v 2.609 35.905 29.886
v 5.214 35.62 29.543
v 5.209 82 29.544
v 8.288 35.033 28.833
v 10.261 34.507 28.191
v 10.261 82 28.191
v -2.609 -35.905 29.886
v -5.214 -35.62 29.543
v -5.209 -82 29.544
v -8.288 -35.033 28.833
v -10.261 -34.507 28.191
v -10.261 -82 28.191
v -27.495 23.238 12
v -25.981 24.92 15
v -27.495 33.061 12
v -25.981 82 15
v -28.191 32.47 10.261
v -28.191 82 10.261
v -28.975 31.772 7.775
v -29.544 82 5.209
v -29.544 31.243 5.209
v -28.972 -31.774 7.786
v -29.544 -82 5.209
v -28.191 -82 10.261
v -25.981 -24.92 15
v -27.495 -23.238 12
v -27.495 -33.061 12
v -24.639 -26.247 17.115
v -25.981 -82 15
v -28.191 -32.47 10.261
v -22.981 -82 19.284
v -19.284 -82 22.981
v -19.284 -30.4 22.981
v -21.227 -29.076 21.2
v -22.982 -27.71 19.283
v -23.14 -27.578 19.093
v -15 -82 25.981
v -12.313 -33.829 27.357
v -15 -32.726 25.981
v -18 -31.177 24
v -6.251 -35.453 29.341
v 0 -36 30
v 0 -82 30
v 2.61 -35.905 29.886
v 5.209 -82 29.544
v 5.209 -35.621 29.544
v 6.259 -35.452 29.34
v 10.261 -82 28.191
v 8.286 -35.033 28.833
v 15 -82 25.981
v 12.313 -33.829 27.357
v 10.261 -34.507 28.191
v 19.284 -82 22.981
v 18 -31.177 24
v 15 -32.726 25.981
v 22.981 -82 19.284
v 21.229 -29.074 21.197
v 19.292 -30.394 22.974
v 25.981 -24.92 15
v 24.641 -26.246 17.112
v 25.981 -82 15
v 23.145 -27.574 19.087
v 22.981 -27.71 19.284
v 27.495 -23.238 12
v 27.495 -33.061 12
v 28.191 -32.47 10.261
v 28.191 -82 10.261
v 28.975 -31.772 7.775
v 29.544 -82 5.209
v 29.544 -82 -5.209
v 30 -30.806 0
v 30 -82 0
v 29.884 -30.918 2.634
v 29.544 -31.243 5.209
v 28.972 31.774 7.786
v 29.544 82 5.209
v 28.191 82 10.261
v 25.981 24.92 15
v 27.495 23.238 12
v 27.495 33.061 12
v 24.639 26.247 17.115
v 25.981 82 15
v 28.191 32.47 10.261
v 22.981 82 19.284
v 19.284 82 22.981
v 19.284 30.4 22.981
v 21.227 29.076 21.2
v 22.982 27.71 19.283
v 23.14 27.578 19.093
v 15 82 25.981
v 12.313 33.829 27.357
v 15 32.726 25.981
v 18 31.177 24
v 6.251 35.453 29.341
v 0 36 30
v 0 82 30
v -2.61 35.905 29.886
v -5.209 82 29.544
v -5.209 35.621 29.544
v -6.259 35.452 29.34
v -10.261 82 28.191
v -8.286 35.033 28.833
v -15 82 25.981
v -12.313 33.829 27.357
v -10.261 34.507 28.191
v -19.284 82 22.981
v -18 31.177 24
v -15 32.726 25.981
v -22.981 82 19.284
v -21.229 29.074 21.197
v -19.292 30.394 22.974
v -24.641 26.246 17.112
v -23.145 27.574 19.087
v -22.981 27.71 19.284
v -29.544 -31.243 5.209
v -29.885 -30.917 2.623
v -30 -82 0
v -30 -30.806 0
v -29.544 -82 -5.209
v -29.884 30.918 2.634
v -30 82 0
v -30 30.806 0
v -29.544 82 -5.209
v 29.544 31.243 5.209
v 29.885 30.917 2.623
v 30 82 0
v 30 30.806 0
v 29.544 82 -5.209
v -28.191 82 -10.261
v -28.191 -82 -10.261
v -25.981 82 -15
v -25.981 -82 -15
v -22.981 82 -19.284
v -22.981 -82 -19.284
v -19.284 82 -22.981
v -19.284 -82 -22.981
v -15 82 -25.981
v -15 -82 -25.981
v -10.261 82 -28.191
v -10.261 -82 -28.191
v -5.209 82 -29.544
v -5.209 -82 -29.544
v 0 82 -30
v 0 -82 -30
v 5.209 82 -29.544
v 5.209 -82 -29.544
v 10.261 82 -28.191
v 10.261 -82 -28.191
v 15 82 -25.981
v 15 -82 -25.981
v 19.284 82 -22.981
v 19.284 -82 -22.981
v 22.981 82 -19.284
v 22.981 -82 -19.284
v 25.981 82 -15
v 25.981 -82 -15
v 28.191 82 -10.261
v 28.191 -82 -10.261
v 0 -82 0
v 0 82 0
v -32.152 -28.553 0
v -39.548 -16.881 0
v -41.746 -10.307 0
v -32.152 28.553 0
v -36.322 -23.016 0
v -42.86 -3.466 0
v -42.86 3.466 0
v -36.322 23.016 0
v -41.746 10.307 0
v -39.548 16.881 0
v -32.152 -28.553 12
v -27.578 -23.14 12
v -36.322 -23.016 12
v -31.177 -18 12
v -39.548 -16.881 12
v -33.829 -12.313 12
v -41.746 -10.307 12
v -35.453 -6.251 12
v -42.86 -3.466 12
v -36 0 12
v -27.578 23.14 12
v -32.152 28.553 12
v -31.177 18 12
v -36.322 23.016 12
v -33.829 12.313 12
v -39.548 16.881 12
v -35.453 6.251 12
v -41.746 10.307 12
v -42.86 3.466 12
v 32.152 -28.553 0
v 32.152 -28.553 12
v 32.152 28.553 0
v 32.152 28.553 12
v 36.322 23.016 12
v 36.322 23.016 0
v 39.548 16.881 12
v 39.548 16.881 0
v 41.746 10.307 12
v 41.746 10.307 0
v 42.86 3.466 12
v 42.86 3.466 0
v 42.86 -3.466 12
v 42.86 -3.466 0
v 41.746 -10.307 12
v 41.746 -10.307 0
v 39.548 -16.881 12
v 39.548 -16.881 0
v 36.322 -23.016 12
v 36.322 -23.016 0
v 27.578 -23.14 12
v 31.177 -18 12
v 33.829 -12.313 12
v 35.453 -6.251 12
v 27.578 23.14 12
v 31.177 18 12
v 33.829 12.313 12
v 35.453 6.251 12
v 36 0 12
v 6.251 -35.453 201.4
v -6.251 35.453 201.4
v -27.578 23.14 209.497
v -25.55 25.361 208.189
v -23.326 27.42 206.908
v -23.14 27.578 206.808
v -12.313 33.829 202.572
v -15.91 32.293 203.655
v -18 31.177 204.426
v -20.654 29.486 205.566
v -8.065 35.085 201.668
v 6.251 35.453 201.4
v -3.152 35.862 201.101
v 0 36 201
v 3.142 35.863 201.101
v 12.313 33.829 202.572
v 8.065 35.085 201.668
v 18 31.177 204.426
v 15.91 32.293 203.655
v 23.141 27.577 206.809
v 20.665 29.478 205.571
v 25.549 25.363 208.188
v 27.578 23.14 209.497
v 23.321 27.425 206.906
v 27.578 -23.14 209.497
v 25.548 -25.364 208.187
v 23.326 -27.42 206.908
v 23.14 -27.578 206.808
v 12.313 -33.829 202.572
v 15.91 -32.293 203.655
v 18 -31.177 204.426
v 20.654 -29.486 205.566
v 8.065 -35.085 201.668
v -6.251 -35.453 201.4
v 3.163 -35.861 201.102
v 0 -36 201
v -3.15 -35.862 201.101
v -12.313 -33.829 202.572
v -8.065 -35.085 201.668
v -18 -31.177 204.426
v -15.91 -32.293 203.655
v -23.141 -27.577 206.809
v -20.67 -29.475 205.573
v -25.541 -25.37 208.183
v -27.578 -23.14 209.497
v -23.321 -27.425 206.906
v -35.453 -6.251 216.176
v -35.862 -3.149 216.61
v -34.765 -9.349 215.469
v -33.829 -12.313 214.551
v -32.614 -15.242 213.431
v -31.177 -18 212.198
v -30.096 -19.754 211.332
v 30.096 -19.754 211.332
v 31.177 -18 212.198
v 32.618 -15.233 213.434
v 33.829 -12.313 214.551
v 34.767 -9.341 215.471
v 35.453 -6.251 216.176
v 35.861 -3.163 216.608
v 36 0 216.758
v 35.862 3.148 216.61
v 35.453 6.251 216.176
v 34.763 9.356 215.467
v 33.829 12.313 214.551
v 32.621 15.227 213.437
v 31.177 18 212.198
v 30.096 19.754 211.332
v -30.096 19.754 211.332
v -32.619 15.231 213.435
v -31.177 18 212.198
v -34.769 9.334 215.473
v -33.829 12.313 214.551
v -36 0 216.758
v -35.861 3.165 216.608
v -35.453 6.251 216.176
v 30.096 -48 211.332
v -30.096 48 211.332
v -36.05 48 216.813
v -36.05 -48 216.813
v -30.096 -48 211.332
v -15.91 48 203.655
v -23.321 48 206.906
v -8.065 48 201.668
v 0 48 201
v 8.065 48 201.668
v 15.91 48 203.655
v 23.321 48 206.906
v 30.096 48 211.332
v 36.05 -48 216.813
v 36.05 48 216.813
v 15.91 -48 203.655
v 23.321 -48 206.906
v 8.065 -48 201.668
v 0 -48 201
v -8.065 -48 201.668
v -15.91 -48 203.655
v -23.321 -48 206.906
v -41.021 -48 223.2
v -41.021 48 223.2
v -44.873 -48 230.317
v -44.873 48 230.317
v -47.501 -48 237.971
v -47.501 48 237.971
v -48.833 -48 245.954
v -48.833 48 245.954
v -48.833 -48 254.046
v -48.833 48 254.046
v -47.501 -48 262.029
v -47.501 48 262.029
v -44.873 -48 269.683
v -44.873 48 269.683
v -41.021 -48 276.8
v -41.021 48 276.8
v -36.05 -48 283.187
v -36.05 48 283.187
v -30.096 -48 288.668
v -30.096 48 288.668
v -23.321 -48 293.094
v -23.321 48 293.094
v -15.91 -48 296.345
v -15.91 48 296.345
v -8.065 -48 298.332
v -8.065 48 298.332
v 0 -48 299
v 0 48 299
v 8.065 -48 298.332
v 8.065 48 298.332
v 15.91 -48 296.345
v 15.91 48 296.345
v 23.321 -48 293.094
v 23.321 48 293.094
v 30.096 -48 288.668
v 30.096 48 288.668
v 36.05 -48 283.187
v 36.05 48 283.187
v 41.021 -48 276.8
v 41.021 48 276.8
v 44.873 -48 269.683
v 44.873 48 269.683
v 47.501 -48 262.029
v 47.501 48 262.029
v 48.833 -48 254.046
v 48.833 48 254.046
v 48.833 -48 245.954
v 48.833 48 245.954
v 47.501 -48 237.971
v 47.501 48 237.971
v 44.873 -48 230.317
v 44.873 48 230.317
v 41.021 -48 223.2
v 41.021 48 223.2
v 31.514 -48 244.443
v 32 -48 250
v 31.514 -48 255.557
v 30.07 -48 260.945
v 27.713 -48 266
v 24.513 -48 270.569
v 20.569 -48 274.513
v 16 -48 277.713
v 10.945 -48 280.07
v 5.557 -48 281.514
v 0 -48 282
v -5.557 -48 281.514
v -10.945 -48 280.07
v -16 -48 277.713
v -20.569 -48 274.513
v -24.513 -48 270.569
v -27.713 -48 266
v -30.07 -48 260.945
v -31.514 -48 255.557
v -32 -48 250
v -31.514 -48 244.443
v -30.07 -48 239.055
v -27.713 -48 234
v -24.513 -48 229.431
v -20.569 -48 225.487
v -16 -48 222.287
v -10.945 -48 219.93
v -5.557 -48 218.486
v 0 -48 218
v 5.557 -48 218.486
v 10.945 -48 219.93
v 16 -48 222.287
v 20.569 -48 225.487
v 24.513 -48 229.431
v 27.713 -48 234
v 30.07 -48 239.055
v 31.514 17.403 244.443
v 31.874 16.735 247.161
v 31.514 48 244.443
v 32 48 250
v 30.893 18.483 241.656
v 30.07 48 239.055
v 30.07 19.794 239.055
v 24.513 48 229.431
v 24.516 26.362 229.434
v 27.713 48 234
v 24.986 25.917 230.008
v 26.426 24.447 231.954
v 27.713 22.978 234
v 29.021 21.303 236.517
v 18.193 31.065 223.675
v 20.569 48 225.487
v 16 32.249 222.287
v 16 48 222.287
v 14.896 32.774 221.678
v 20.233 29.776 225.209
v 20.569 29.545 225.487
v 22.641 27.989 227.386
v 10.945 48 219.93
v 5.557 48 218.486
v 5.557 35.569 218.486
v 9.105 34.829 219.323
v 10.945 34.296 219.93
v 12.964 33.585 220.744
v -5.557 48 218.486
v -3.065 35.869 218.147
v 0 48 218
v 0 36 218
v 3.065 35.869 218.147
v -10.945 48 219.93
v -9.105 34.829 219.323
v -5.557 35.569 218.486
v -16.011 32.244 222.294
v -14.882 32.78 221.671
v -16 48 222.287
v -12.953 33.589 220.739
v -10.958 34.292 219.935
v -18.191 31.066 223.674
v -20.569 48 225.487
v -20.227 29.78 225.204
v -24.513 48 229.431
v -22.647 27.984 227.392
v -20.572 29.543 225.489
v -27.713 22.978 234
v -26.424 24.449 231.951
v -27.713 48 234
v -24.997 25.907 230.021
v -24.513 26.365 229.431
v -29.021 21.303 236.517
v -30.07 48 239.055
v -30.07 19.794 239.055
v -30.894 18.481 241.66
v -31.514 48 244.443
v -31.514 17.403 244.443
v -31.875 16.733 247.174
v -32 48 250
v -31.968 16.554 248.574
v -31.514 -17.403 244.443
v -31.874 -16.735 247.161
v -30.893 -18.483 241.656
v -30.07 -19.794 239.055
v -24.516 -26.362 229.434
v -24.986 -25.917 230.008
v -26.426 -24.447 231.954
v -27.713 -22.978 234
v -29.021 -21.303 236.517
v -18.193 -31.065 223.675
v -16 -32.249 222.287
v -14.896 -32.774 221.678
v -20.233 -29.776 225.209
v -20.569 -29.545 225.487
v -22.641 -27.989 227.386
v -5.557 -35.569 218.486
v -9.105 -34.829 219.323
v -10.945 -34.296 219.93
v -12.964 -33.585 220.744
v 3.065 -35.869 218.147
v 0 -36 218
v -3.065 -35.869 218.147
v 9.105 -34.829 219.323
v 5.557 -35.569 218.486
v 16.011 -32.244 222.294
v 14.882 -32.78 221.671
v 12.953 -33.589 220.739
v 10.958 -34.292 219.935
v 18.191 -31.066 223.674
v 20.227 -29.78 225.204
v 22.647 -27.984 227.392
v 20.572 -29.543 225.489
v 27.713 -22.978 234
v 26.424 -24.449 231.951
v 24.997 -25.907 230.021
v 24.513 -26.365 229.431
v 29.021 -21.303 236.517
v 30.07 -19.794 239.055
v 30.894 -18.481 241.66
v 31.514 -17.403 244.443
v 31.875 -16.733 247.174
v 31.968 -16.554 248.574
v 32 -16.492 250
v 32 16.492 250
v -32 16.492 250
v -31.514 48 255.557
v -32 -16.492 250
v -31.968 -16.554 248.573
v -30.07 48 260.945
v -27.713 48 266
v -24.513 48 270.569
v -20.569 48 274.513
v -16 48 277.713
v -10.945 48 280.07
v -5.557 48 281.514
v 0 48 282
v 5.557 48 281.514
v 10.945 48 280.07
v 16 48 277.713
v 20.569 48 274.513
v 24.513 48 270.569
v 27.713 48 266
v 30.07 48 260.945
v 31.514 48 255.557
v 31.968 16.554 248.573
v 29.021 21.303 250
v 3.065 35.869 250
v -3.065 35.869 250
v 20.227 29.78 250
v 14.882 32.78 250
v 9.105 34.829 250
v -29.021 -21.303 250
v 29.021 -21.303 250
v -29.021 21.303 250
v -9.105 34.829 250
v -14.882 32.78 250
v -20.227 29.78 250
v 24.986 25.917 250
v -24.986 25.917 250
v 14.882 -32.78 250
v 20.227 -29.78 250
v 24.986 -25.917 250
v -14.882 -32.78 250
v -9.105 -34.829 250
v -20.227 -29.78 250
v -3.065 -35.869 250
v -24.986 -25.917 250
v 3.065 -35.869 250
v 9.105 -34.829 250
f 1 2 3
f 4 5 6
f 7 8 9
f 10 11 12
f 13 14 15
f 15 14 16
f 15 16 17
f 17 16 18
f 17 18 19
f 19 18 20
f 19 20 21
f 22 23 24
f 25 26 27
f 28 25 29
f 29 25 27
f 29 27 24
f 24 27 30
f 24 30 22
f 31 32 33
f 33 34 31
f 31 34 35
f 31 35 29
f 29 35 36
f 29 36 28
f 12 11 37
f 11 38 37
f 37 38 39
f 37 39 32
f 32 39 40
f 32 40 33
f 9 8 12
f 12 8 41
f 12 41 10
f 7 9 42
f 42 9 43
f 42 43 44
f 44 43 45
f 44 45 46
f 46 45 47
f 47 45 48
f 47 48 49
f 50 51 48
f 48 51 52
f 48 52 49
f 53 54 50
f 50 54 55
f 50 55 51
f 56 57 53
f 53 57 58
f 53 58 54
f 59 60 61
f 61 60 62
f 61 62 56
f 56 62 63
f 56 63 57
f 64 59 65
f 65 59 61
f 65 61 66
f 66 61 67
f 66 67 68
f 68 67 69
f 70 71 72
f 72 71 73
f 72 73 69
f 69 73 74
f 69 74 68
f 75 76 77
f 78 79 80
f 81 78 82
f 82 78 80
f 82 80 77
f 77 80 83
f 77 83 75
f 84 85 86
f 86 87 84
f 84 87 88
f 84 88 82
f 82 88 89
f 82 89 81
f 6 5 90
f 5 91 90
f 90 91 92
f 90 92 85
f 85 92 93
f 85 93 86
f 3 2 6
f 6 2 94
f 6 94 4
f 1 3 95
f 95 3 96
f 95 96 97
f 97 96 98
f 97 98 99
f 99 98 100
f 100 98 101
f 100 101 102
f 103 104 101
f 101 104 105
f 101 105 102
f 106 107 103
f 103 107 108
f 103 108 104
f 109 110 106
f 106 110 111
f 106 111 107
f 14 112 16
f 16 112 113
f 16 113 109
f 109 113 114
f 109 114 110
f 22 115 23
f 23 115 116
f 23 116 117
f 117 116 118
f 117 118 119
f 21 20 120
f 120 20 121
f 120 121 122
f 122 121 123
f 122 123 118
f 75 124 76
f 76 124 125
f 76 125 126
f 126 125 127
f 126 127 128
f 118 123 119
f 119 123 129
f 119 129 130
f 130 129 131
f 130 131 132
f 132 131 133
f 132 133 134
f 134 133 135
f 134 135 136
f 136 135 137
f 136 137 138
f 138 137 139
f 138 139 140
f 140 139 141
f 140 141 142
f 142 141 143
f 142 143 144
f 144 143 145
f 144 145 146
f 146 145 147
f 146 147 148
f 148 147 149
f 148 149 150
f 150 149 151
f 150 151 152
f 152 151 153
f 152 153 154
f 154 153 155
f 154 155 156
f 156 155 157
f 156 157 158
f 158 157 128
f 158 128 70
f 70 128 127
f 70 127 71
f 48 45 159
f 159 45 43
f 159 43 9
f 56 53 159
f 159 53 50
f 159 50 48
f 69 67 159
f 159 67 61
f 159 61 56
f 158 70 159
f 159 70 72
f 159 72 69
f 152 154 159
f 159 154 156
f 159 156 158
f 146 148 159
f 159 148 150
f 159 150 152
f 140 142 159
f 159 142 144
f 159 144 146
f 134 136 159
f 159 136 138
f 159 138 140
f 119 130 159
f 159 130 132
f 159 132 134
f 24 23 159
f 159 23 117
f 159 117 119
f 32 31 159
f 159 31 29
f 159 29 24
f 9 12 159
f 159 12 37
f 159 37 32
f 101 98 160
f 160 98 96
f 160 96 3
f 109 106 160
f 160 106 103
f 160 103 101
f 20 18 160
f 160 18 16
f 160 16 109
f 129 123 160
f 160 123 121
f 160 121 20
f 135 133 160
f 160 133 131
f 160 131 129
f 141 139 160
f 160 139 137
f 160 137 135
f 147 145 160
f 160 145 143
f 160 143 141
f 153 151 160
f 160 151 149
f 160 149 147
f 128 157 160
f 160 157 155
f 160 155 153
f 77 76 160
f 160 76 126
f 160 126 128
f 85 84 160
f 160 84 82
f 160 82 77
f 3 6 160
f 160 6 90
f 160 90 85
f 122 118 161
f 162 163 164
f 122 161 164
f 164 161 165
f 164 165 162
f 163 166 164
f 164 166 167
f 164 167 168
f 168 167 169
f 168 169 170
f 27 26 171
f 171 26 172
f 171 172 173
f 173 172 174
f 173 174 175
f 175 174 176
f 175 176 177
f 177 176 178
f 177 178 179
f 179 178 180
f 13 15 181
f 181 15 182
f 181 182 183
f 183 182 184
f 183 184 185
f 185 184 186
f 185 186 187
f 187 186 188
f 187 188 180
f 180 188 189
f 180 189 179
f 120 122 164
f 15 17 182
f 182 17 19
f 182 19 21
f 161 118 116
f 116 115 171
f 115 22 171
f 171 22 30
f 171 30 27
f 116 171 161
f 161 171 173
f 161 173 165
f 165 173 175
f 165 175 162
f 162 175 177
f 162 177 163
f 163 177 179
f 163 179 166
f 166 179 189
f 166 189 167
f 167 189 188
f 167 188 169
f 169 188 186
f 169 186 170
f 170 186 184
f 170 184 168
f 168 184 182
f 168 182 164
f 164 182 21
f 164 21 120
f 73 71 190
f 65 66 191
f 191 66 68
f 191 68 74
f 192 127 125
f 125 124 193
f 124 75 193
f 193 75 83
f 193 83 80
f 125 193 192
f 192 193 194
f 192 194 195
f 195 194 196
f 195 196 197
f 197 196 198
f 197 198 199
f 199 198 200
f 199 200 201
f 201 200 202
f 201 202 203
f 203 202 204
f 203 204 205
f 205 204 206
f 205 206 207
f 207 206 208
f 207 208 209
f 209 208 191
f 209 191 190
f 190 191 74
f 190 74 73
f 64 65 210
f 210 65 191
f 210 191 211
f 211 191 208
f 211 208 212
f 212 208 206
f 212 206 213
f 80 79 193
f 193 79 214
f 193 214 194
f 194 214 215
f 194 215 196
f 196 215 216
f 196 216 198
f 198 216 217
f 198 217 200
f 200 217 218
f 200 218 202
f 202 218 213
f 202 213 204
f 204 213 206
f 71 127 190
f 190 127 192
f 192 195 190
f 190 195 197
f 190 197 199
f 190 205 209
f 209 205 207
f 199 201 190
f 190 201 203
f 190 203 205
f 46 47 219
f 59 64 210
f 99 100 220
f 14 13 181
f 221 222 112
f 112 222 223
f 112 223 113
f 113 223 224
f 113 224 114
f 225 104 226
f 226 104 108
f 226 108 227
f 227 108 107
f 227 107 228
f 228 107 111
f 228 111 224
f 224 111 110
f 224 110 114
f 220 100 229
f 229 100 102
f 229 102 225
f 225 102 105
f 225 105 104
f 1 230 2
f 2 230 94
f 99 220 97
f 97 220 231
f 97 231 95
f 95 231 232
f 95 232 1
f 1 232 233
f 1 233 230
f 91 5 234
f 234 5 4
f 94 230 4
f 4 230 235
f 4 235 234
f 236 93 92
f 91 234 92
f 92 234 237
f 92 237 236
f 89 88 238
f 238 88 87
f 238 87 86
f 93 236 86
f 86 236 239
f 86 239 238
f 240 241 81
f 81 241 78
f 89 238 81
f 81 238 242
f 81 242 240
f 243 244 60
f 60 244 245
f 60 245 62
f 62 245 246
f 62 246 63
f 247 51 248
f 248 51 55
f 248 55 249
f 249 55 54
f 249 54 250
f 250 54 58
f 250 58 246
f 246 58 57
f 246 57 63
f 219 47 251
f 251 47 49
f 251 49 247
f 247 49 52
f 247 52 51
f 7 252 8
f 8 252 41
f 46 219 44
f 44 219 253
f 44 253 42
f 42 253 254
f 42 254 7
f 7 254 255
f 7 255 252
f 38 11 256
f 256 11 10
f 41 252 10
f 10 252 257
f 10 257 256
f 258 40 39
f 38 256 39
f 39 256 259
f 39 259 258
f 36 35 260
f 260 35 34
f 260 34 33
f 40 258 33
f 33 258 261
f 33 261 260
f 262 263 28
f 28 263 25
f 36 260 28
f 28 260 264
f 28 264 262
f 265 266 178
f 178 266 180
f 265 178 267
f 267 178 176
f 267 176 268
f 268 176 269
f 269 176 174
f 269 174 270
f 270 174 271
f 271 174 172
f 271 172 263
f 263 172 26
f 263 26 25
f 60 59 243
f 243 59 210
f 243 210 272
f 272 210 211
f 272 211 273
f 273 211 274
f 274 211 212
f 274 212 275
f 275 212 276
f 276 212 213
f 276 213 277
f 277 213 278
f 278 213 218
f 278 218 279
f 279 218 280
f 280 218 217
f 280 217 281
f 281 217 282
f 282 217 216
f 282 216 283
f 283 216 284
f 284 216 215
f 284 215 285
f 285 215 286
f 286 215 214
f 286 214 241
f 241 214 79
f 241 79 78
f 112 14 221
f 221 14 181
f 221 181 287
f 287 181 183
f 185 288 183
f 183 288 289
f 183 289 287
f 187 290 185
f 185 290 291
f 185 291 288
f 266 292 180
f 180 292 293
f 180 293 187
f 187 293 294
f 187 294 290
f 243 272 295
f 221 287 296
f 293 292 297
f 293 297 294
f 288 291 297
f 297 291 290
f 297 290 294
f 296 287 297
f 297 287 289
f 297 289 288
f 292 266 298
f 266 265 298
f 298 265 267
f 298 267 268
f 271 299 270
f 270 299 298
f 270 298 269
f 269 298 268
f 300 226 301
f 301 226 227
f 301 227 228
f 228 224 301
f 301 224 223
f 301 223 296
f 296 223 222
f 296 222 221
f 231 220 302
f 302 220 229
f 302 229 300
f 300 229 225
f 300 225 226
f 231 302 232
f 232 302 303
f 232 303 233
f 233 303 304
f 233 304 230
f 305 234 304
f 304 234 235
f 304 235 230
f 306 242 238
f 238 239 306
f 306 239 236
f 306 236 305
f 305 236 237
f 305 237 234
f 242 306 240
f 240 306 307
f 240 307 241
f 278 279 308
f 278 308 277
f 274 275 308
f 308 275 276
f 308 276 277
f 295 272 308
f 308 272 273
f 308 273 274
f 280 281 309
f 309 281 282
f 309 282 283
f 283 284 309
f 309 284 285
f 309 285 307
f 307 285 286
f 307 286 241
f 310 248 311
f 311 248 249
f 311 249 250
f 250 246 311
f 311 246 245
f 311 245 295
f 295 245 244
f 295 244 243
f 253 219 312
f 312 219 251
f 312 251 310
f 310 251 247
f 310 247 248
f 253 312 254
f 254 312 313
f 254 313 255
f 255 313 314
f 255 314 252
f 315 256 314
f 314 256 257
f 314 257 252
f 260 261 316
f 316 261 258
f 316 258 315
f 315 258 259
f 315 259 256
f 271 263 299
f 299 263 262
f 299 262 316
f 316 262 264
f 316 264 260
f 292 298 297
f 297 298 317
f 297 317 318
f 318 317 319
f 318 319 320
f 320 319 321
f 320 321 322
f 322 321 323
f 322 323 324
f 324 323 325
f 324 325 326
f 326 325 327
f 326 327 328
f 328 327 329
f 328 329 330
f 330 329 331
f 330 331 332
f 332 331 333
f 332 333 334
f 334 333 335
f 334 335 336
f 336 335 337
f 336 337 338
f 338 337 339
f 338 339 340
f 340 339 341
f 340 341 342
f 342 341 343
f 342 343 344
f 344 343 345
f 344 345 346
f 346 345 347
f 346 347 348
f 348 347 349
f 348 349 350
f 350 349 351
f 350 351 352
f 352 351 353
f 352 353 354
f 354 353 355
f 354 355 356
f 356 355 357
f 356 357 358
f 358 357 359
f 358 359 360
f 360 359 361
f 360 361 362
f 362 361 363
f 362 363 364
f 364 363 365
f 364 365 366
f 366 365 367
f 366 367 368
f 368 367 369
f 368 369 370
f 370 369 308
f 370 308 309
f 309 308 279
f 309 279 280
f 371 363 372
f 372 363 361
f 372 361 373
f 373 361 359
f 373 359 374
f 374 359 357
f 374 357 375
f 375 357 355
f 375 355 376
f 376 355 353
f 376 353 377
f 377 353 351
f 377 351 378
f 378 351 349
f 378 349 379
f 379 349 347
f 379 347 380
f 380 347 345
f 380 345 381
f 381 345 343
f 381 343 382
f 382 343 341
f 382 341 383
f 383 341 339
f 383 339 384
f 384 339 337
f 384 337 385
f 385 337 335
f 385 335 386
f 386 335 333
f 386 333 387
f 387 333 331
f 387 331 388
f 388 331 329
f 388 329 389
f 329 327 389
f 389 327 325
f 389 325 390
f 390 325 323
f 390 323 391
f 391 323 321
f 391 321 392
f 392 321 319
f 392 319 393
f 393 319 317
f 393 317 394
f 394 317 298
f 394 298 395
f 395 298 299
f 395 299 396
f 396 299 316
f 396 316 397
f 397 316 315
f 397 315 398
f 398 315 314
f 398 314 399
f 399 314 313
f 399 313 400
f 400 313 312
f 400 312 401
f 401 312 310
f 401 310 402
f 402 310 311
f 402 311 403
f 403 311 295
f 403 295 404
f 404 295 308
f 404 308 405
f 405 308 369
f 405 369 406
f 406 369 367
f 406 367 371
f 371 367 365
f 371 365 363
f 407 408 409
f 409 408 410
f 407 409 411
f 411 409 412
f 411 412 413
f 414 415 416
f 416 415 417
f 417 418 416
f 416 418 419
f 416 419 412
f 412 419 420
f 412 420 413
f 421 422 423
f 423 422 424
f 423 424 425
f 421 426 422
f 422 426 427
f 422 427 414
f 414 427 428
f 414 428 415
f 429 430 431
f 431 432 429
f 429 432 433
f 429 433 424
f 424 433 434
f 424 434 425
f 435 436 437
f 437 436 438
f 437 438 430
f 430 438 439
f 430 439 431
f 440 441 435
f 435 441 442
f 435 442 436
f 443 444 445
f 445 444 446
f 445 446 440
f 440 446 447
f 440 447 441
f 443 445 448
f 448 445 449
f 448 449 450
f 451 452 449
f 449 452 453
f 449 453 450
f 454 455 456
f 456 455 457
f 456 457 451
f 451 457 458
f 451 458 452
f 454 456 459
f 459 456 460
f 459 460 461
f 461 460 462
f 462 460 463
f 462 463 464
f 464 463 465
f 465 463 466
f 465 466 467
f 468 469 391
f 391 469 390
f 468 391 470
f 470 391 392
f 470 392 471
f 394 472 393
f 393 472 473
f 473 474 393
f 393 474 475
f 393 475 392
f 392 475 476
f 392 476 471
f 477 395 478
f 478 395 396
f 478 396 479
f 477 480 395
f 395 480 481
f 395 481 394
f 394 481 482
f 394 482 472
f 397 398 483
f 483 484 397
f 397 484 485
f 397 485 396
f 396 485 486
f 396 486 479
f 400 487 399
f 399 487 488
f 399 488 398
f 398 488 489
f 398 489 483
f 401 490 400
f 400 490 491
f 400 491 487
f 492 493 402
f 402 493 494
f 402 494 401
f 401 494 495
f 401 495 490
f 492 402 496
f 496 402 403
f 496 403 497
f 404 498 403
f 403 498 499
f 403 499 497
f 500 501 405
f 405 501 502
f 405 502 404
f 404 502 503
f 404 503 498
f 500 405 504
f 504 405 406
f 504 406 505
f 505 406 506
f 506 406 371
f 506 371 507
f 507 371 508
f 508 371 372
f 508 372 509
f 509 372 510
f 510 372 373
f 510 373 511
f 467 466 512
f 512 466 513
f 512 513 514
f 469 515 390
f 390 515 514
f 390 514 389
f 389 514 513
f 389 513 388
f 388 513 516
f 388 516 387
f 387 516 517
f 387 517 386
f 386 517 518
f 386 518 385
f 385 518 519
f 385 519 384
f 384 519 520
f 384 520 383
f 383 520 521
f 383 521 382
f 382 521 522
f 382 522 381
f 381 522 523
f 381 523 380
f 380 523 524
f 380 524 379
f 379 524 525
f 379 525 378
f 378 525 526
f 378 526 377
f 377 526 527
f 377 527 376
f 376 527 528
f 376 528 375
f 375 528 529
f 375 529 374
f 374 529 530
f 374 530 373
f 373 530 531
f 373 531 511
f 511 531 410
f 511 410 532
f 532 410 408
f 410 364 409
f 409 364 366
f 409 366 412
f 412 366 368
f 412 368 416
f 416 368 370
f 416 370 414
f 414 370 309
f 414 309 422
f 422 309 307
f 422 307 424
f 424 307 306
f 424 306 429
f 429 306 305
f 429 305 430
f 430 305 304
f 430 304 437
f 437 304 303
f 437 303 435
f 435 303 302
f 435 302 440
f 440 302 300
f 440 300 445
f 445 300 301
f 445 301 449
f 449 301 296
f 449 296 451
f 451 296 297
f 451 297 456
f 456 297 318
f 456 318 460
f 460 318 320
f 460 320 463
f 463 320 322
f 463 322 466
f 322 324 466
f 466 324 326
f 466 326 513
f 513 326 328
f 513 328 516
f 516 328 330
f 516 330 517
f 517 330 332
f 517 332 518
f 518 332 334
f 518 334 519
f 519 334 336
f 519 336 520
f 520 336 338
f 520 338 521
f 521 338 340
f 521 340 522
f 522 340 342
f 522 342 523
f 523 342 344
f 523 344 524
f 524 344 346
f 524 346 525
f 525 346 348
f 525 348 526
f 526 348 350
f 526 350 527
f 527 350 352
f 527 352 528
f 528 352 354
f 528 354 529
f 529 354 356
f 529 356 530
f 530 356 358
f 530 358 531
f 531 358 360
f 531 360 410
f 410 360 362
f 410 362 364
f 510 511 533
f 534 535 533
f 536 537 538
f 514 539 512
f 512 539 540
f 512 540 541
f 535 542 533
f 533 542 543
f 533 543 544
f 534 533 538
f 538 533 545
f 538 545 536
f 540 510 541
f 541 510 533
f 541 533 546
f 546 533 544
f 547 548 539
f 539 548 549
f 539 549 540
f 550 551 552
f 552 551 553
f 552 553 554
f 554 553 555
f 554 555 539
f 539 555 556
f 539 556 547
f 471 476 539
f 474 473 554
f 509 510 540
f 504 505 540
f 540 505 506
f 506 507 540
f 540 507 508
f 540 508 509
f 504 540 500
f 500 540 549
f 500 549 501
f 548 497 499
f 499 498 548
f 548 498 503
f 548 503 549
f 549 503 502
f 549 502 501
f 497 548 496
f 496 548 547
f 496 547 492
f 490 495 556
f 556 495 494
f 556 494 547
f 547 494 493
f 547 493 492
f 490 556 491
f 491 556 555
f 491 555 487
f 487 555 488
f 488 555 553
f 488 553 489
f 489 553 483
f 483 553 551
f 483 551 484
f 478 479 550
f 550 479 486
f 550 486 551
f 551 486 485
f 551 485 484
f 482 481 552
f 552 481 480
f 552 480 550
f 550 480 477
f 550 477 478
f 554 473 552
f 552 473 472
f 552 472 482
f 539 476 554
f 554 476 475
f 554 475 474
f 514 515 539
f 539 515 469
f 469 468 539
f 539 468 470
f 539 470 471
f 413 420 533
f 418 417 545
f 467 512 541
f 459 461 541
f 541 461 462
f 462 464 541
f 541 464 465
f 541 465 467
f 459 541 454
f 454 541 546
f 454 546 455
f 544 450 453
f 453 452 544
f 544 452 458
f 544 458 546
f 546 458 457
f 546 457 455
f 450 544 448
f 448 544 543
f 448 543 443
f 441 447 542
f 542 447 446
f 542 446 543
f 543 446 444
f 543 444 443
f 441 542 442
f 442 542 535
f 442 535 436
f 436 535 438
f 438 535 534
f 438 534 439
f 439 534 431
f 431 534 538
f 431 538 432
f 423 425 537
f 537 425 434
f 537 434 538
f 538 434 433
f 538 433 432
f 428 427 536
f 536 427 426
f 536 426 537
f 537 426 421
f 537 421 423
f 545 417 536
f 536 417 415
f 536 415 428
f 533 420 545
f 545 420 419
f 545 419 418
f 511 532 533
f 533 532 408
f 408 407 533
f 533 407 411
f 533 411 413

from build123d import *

# Parameters (mm, degrees)
EXTRUDE_1_DEPTH      = 82
EXTRUDE_1_DEPTH_BACK = 82
SKETCH_1_R           = 30
SKETCH_2_R           = 43
EXTRUDE_2_DEPTH      = 12
SKETCH_3_R           = 36
EXTRUDE_3_DEPTH      = 250
EXTRUDE_5_DEPTH      = 48
EXTRUDE_5_DEPTH_BACK = 48
SKETCH_5_R           = 49
SKETCH_5_R_2         = 32


with BuildPart() as part:
    # 草图1 → 凸台-拉伸1 (new, two sides: drawn at the far end of the back side and taken through both)
    with BuildSketch(Plane(origin=(0, 0, 0), x_dir=(1, 0, 0), z_dir=(0, 1, 0)).offset(-EXTRUDE_1_DEPTH_BACK)):
        Circle(SKETCH_1_R)
    extrude(amount=EXTRUDE_1_DEPTH + EXTRUDE_1_DEPTH_BACK)

    # 草图2 → 凸台-拉伸2 (add)
    with BuildSketch(Plane.XY):
        Circle(SKETCH_2_R)
    extrude(amount=EXTRUDE_2_DEPTH)

    # 草图3 → 凸台-拉伸3 (add)
    with BuildSketch(Plane.XY):
        Circle(SKETCH_3_R)
    extrude(amount=EXTRUDE_3_DEPTH)

    # 草图5 → 凸台-拉伸5 (add, two sides: drawn at the far end of the back side and taken through both)
    with BuildSketch(Plane(origin=(0, 0, 0), x_dir=(1, 0, 0), z_dir=(0, 1, 0)).offset(-EXTRUDE_5_DEPTH_BACK)):
        with Locations((0, -250)):
            Circle(SKETCH_5_R)
        with Locations((0, -250)):
            Circle(SKETCH_5_R_2, mode=Mode.SUBTRACT)
    extrude(amount=EXTRUDE_5_DEPTH + EXTRUDE_5_DEPTH_BACK)


solid = part.part
